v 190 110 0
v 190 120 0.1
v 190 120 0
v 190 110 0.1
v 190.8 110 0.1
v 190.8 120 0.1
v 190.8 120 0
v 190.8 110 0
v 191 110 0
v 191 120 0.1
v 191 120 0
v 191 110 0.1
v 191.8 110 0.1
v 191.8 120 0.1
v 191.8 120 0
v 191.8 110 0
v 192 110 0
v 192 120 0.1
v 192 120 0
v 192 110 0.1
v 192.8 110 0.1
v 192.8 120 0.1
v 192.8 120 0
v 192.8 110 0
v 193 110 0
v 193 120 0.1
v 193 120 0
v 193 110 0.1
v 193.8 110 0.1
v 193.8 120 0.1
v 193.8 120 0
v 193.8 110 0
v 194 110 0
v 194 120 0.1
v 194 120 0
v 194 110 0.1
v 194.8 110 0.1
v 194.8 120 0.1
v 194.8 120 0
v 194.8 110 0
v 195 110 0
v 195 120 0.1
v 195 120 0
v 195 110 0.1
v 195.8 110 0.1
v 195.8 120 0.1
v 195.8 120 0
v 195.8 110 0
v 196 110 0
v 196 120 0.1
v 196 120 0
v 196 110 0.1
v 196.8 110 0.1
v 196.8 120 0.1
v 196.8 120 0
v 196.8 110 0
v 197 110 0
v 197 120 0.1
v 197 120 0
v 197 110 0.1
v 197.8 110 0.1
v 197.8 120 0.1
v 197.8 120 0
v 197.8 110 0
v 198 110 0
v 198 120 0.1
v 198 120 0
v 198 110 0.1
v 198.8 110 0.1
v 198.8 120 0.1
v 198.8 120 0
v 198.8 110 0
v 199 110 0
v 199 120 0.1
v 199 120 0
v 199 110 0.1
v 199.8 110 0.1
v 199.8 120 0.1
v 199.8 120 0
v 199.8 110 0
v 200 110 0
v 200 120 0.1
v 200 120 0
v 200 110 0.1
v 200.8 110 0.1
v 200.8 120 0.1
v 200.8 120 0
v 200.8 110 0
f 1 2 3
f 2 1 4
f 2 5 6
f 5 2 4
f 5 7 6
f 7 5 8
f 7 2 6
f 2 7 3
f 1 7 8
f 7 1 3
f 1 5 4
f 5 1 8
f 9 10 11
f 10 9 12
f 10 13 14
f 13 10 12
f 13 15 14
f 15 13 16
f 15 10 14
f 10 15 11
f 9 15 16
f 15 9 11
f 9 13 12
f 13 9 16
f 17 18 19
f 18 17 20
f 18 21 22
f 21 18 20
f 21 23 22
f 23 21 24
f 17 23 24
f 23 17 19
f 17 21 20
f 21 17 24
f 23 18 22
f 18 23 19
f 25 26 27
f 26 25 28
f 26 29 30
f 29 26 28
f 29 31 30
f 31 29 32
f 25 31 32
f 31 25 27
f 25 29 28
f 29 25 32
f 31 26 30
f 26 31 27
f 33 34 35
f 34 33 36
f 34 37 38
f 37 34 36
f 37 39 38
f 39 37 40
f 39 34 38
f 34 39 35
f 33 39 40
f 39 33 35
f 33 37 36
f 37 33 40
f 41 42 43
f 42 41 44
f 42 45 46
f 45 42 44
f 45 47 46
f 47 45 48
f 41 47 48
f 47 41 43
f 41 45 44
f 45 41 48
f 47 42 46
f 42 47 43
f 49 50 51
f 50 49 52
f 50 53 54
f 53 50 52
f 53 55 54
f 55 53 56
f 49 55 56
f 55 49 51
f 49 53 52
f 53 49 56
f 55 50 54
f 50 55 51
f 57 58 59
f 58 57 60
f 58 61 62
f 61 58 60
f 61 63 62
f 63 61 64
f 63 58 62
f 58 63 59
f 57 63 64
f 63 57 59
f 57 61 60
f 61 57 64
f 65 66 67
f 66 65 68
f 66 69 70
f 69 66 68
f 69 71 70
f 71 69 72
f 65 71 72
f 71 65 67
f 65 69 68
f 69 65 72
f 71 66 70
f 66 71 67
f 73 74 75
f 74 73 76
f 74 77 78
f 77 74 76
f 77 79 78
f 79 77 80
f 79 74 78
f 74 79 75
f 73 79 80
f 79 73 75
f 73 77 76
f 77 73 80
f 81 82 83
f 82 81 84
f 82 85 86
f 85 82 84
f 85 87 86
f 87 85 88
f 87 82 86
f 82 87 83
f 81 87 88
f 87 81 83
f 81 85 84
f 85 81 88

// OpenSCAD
translate([10+180,10+100,0])
        for (i = [0 : 10]){
            translate([i,0,0])
                cube(size = [0.8,10,0.1]);
    }
